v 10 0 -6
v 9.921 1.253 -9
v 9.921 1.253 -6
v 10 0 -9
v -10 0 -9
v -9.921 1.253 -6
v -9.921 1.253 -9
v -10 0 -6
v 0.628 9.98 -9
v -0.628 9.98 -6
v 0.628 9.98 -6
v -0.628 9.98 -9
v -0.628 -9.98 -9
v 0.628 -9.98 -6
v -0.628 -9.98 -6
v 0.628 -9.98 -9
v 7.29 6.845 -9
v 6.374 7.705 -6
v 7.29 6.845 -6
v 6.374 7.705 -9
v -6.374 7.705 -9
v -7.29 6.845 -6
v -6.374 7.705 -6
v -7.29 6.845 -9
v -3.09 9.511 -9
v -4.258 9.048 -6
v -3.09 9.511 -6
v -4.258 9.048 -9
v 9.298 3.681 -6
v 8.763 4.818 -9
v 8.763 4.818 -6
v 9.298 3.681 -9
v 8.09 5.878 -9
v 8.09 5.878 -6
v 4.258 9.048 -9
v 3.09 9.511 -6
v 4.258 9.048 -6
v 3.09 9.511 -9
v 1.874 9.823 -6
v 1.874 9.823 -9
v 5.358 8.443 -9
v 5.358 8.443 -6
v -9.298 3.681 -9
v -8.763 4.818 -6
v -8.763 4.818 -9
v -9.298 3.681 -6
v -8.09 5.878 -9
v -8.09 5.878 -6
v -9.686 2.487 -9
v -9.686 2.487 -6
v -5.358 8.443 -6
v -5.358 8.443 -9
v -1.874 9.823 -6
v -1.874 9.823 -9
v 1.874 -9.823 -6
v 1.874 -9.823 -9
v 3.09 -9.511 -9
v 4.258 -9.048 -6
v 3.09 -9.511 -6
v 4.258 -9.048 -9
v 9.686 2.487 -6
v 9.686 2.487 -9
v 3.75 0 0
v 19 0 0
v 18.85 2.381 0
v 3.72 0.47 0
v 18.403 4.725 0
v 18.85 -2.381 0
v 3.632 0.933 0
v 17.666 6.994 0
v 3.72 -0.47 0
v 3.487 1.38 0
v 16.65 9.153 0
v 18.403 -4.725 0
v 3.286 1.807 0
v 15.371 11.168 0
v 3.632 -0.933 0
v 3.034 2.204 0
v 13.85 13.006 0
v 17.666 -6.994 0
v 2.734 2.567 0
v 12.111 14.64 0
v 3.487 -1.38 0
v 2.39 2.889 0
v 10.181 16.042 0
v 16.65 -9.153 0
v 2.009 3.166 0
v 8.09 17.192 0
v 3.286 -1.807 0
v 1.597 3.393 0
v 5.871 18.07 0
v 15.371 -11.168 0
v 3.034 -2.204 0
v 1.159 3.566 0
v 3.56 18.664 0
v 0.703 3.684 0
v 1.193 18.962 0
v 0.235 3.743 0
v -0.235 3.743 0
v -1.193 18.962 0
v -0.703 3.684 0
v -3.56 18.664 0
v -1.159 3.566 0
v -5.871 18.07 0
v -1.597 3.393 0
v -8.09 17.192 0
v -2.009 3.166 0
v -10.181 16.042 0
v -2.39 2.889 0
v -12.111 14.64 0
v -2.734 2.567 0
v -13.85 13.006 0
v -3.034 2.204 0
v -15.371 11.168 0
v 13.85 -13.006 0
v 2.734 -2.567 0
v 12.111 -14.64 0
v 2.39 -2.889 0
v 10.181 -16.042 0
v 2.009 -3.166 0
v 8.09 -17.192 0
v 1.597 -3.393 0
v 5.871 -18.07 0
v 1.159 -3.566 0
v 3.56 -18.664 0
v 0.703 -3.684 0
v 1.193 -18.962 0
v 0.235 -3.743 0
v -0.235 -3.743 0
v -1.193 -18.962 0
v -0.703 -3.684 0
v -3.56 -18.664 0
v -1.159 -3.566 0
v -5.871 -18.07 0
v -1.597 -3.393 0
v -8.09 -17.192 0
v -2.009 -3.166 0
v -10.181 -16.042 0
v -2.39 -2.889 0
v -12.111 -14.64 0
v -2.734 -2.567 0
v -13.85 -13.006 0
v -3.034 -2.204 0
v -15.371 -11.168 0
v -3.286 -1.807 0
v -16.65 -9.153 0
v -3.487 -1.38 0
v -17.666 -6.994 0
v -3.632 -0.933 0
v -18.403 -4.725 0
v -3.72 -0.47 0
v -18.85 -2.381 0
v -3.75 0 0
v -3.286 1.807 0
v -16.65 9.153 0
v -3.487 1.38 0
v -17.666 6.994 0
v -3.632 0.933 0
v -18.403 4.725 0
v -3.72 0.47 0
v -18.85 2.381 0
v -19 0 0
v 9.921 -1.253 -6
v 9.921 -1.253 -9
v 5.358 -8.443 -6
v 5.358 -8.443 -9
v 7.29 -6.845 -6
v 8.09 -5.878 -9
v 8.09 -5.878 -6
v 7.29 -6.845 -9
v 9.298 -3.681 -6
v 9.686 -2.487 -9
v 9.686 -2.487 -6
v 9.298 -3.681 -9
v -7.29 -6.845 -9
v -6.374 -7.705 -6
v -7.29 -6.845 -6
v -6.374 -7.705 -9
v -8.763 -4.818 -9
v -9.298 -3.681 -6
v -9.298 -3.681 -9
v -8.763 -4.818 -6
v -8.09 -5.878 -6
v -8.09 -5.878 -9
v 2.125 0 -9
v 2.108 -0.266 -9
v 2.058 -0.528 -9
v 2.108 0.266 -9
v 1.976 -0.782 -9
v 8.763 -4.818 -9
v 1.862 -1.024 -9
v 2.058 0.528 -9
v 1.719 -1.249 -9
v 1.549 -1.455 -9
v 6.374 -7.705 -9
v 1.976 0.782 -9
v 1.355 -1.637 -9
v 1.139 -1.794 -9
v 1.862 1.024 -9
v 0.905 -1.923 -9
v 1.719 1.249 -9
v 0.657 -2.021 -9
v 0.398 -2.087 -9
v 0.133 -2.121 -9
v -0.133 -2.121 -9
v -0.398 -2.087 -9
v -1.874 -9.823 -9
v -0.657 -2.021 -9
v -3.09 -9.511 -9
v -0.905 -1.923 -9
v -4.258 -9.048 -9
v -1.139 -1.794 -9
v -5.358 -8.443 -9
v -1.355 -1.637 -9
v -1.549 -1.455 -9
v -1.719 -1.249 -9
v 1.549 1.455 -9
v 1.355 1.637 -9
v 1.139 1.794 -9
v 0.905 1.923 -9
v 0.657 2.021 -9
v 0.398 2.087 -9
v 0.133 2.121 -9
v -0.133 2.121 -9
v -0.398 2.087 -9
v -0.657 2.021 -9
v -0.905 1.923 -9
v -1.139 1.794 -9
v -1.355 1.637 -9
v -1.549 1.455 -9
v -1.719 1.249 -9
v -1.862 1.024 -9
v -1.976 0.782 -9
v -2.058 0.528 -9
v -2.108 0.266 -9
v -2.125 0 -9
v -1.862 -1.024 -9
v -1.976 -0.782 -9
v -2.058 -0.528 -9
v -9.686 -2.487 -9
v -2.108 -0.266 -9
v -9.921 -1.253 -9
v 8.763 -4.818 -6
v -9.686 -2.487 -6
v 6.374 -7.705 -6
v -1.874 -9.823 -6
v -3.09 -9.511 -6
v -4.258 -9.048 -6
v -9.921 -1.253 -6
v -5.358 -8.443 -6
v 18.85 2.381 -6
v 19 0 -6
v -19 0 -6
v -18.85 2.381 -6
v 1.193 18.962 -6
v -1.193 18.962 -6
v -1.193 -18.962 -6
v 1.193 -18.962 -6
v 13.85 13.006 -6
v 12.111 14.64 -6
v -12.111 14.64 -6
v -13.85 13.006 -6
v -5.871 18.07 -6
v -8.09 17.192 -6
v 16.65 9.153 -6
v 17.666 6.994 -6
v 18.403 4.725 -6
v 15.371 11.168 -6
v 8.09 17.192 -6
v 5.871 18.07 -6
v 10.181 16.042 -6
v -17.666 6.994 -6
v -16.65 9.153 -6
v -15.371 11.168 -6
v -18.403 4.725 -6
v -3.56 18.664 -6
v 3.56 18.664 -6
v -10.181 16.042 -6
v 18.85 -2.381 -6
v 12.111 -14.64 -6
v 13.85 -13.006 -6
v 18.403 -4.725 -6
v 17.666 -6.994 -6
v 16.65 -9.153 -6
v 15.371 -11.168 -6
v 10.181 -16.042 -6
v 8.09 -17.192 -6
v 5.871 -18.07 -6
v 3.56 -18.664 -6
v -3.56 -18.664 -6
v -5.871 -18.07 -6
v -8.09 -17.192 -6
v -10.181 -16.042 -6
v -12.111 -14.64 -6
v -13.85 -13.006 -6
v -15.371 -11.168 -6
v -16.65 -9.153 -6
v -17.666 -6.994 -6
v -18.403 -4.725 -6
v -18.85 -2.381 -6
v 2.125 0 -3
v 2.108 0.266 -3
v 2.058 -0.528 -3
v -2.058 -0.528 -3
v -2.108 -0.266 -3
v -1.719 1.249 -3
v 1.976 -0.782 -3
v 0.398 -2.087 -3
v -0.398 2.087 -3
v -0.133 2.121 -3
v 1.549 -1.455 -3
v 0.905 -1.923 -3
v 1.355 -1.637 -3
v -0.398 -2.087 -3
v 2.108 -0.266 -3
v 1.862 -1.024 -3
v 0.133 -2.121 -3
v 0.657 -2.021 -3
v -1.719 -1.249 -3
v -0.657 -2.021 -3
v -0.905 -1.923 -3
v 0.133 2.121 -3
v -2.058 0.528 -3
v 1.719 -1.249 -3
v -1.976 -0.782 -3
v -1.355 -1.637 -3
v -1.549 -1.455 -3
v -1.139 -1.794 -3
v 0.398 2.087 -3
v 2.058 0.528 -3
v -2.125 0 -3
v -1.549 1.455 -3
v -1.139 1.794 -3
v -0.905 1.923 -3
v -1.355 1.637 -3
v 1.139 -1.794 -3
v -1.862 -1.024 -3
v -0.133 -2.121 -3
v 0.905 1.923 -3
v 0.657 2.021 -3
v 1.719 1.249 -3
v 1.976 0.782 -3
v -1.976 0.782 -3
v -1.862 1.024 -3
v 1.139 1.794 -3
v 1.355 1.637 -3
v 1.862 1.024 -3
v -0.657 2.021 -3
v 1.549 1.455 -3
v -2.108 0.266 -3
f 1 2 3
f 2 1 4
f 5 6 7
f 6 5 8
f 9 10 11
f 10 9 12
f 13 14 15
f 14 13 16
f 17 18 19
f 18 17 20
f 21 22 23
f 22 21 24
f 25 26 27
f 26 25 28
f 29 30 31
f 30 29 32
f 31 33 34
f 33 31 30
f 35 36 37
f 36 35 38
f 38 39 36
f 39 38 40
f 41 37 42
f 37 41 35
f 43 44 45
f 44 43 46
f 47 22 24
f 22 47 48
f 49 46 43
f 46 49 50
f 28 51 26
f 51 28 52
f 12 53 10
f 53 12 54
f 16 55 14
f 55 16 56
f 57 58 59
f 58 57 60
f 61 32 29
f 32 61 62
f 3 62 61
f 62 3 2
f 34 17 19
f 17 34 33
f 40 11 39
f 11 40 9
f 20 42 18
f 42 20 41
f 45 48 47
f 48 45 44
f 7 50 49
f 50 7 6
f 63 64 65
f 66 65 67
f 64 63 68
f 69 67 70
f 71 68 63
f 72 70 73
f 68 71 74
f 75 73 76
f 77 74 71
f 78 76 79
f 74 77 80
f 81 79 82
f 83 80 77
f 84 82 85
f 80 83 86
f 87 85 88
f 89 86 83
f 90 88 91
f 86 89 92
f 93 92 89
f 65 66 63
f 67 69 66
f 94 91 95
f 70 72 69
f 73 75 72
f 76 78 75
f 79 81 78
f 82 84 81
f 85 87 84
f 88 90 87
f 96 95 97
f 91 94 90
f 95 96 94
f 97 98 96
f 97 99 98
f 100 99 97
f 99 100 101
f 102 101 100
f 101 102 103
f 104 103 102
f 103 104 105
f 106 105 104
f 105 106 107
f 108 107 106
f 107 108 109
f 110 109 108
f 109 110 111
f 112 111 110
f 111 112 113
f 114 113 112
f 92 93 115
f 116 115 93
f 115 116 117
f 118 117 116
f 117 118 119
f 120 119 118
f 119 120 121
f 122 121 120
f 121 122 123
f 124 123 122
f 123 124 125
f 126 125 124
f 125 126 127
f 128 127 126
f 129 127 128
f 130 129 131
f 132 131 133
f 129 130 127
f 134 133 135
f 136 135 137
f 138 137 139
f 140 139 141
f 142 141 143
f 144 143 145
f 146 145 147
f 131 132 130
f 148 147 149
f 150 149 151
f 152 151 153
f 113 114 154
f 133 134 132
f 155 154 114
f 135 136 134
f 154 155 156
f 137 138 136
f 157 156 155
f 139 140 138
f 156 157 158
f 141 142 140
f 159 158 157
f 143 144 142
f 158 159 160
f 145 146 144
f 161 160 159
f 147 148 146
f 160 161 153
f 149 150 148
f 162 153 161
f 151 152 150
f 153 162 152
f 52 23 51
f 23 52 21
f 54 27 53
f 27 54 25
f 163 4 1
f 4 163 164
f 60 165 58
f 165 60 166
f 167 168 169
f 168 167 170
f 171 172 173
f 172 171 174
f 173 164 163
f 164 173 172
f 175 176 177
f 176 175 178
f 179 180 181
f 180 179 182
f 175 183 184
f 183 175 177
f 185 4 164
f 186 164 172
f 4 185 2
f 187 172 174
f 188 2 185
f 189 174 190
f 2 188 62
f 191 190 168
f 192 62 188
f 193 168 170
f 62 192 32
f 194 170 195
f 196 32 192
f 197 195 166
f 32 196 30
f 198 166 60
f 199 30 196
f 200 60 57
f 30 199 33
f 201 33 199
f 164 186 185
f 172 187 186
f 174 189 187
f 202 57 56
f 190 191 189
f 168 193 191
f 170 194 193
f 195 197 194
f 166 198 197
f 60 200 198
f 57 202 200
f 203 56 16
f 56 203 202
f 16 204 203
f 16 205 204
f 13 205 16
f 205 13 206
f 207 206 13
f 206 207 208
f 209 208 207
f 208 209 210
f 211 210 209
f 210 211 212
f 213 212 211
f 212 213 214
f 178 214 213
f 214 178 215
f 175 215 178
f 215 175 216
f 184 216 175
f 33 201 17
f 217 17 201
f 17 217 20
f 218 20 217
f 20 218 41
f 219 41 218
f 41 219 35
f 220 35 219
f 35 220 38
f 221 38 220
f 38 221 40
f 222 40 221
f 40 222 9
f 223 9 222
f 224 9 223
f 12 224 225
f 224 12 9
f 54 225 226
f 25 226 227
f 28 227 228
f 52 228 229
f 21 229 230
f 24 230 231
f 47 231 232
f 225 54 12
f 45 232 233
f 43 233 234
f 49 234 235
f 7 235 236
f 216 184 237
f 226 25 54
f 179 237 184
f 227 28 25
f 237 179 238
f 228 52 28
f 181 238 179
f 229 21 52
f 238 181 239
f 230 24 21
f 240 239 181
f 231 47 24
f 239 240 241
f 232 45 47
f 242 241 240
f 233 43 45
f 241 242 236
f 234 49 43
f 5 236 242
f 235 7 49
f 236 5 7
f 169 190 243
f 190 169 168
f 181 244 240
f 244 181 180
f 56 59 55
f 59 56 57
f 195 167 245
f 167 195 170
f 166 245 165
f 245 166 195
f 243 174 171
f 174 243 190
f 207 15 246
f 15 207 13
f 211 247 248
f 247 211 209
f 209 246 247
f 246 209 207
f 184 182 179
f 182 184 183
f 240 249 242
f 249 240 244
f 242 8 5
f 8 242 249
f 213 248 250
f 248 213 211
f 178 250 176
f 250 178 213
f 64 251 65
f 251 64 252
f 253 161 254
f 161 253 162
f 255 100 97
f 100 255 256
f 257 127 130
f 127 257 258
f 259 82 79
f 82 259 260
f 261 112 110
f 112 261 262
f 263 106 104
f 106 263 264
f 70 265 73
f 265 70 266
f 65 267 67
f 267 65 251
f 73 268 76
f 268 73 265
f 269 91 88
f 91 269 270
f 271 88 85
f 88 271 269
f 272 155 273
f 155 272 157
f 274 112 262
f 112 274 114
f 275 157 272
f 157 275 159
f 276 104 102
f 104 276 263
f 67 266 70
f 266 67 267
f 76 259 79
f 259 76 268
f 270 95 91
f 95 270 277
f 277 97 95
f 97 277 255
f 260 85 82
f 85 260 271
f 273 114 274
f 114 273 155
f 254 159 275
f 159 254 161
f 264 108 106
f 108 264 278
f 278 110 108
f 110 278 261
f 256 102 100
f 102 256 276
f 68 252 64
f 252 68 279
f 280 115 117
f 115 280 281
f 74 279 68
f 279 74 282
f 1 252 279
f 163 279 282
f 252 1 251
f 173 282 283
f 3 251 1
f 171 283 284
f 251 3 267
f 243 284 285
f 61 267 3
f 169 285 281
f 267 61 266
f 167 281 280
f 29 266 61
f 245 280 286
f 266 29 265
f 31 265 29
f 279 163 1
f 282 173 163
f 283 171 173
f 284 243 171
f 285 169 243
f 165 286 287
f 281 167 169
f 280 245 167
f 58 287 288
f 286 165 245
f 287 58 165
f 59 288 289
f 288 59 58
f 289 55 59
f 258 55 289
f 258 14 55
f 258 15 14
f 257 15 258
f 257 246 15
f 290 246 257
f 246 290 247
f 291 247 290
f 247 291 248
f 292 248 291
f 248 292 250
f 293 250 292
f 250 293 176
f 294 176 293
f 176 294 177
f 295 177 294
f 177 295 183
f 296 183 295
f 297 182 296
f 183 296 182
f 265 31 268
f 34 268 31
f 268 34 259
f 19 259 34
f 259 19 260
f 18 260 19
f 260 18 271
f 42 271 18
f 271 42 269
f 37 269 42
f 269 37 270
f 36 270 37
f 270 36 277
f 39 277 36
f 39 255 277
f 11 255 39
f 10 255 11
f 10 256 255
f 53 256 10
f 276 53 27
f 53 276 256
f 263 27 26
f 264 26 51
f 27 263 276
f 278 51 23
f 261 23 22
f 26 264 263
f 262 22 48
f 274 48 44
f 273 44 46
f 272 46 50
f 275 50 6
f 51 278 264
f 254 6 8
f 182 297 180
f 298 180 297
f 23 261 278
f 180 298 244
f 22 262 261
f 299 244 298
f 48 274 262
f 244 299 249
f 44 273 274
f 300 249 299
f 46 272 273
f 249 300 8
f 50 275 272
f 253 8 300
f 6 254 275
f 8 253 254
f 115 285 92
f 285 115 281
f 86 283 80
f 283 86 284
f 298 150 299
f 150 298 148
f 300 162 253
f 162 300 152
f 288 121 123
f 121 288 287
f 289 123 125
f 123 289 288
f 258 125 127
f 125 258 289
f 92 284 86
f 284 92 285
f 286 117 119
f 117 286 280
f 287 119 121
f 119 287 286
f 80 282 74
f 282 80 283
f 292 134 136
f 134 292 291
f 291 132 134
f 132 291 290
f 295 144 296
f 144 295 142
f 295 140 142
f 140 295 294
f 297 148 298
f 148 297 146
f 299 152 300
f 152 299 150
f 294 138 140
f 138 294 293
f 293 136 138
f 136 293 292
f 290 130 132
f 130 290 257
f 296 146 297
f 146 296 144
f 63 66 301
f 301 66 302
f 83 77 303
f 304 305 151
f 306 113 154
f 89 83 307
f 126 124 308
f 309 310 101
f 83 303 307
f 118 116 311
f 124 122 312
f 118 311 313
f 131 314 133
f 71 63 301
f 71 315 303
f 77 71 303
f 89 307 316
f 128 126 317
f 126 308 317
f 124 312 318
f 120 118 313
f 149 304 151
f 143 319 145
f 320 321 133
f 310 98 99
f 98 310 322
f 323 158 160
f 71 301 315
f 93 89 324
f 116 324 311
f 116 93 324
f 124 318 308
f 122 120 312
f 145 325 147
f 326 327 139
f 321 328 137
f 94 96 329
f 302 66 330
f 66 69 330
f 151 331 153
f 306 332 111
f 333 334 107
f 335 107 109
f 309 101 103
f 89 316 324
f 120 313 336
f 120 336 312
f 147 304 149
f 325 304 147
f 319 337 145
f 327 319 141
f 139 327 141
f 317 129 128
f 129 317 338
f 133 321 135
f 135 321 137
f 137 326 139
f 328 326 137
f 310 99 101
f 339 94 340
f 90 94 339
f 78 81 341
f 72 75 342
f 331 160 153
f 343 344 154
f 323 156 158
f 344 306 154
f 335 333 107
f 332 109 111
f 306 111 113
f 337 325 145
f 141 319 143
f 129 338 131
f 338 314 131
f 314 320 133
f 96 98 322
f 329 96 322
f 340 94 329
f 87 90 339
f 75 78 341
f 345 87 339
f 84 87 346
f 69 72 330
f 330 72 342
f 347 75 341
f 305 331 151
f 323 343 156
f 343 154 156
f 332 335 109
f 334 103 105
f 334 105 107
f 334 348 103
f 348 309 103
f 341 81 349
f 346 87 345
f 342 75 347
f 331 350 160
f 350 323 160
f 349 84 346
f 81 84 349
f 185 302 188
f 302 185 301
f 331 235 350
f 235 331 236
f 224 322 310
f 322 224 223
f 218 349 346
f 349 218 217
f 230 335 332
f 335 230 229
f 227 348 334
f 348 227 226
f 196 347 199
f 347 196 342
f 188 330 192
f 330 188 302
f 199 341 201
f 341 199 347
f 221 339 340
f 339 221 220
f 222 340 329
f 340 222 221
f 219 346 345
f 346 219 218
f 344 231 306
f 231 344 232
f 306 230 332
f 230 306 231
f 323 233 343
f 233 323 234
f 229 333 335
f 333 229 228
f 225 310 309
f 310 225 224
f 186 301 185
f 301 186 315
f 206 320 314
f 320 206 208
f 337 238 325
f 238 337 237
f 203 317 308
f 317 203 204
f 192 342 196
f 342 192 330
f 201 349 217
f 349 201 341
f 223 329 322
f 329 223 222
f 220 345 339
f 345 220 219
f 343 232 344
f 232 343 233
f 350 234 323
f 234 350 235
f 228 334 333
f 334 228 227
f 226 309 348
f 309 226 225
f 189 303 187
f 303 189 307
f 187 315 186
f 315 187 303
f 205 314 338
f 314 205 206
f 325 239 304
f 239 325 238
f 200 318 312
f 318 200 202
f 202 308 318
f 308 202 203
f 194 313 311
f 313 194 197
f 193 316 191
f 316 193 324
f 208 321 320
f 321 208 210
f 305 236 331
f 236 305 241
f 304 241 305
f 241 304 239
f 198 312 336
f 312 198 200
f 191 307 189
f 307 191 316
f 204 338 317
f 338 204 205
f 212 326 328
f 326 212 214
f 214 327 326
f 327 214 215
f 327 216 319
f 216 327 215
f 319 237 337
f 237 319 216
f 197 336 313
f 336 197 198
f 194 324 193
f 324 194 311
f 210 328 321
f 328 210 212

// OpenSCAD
$fn = 50;


difference() {
	union() {
		translate(v = [0, 0, -9.0000000000]) {
			cylinder(h = 9, r = 10.0000000000);
		}
		translate(v = [0, 0, -6.0000000000]) {
			cylinder(h = 6, r = 19.0000000000);
		}
	}
	union() {
		translate(v = [0, 0, 0]) {
			rotate(a = [0, 0, 0]) {
				difference() {
					union() {
						#translate(v = [0, 0, -9.0000000000]) {
							cylinder(h = 9, r = 2.0000000000);
						}
						#translate(v = [0, 0, -3]) {
							cylinder(h = 3, r1 = 2.1250000000, r2 = 3.7500000000);
						}
						#translate(v = [0, 0, -9.0000000000]) {
							cylinder(h = 9, r = 2.1250000000);
						}
						#translate(v = [0, 0, -9.0000000000]) {
							cylinder(h = 9, r = 2.0000000000);
						}
					}
					union();
				}
			}
		}
	}
}
